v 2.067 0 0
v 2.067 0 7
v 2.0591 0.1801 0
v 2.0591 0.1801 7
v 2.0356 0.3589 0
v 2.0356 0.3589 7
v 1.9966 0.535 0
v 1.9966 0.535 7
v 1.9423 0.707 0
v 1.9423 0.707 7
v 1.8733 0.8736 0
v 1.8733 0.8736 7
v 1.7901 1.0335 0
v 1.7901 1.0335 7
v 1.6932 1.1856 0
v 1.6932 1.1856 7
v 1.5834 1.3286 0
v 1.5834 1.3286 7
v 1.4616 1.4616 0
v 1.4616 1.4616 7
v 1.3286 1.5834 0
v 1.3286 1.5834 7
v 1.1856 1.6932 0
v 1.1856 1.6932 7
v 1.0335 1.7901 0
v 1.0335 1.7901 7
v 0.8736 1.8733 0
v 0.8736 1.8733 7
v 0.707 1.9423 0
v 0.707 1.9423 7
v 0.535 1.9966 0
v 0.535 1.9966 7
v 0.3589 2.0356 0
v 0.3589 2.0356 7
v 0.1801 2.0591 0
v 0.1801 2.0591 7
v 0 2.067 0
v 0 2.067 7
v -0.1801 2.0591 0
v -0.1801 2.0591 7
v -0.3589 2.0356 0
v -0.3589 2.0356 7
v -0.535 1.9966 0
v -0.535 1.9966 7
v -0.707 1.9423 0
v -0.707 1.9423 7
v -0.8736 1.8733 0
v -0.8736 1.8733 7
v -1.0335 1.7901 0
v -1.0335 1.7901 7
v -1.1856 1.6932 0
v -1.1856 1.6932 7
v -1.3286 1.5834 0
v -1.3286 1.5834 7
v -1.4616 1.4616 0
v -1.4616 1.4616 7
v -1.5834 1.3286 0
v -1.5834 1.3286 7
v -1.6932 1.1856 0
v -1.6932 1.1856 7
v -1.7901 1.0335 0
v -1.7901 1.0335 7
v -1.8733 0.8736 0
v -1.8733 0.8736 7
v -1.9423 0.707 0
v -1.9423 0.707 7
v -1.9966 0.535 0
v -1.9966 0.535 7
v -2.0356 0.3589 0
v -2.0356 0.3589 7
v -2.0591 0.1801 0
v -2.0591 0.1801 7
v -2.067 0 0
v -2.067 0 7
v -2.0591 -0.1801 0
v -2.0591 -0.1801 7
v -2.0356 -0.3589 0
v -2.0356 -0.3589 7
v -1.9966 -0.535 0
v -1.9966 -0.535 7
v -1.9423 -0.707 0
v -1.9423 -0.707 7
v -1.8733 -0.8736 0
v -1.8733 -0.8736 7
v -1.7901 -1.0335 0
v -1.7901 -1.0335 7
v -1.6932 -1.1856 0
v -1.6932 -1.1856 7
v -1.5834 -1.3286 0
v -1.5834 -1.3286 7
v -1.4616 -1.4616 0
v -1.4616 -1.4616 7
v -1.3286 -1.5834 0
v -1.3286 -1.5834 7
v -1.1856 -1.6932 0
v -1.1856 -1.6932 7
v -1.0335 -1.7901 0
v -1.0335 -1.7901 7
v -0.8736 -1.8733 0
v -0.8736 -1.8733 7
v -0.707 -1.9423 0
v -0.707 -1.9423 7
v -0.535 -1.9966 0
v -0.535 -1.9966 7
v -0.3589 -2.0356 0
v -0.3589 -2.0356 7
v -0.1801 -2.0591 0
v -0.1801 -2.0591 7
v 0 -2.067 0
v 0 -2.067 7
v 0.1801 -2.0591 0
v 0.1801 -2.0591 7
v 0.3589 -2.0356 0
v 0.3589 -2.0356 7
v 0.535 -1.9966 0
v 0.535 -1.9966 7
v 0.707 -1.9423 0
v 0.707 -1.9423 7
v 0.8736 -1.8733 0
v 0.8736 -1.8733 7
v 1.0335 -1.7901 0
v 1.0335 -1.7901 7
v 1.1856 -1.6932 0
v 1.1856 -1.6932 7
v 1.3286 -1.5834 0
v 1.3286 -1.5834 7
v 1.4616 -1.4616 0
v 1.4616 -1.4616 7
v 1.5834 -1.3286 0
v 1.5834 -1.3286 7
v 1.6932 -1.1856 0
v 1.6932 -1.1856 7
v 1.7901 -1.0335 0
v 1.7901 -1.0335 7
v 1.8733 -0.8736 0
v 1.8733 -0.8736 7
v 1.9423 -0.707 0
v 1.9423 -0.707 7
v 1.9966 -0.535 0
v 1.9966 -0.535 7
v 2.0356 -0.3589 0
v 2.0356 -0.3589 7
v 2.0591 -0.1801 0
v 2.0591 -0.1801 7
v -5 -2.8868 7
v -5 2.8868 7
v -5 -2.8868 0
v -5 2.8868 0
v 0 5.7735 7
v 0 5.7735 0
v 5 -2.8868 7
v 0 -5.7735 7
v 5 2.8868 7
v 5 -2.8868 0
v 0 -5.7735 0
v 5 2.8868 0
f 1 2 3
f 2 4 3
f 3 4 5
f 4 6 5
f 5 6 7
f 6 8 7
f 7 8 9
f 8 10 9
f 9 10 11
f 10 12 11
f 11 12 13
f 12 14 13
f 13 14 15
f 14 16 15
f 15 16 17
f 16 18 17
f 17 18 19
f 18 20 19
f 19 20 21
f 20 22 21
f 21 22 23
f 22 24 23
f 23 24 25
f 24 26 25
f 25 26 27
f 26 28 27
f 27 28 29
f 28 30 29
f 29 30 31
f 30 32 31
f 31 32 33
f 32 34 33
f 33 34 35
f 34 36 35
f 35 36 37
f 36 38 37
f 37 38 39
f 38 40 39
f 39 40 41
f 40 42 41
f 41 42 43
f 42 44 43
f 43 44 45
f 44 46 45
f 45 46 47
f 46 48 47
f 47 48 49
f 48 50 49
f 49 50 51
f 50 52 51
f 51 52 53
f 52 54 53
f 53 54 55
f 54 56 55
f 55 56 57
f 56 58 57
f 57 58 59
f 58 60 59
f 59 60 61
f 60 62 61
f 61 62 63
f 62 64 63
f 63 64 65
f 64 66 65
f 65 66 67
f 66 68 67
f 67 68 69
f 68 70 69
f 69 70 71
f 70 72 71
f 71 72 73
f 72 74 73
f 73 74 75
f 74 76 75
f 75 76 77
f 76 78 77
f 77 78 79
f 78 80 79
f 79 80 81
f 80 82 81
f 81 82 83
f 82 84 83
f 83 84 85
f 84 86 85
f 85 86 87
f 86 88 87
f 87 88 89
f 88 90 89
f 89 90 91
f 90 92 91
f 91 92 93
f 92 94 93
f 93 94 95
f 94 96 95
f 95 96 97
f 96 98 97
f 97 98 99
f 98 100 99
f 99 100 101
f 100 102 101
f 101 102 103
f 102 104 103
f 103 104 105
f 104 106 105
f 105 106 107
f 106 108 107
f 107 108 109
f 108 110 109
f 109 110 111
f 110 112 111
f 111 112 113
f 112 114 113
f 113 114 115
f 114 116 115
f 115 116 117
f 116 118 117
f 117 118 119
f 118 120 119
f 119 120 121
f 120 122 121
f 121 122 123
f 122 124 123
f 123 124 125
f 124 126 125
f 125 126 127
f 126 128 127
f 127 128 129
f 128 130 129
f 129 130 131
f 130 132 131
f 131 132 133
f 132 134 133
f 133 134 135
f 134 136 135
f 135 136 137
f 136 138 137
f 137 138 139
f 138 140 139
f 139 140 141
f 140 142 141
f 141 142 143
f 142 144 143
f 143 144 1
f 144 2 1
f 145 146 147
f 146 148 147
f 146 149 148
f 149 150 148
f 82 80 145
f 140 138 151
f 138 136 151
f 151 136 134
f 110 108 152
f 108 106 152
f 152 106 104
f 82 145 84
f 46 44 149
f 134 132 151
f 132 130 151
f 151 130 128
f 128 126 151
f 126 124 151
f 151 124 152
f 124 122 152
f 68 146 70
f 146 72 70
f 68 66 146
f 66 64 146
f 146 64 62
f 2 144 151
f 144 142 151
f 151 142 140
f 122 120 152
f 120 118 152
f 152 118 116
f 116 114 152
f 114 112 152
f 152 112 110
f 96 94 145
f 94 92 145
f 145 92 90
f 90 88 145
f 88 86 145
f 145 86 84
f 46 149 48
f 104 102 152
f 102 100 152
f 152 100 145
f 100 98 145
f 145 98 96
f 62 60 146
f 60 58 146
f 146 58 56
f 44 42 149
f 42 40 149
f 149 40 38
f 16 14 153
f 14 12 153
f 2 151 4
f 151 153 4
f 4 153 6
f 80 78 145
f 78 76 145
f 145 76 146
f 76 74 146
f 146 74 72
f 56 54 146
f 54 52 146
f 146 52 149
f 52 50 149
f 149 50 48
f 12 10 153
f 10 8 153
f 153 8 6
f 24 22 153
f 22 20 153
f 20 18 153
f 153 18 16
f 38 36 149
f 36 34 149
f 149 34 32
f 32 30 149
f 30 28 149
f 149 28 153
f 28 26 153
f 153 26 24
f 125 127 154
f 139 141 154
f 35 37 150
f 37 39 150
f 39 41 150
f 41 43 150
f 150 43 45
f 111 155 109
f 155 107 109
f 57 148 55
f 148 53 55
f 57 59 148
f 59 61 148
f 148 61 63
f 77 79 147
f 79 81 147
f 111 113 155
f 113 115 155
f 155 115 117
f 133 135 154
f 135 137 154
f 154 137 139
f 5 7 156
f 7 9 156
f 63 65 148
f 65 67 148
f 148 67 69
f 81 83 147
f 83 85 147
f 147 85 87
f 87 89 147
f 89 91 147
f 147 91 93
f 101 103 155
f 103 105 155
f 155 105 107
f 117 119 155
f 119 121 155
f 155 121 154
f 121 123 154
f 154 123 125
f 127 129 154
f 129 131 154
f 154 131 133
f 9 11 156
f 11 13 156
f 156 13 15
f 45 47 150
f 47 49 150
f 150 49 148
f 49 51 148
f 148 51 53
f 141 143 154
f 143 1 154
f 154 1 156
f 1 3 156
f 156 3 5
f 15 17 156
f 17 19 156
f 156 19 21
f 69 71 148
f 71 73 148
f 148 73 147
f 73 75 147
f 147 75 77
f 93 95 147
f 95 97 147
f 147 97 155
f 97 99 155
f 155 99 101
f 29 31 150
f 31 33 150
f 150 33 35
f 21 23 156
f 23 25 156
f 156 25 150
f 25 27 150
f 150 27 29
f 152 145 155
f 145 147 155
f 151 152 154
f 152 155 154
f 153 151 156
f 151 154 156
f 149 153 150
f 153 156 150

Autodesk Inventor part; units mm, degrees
ref_plane "YZ Plane" through (0, 0, 0) normal (1, 0, 0) x (0, 1, 0)
ref_plane "XZ Plane" through (0, 0, 0) normal (0, 1, 0) x (-1, 0, 0)
ref_plane "XY Plane" through (0, 0, 0) normal (0, 0, 1) x (1, 0, 0)
sketch "Sketch1" plane through (0, 0, 0) normal (0, 0, 1) x (1, 0, 0)
  line L0 (5, 2.8868) -> (5, -2.8868)
  line L1 (5, 2.8868) -> (0, 5.7735)
  line L2 (-5, 2.8868) -> (0, 5.7735)
  line L3 (0, -5.7735) -> (5, -2.8868)
  line L4 (-5, 2.8868) -> (-5, -2.8868)
  line L5 (-5, -2.8868) -> (0, -5.7735)
  point P0 (0, 0)
  point P1 (0, 0)
  point P2 (0, 0)
  point P3 (0, 0)
  point P4 (0, 0)
  dimension "d0" = 120
  dimension "d1" = 120
  dimension "d2" = 120
  dimension "d3" = 120
  dimension "d4" = 120
  dimension "d5" = 120
  dimension "d6" = 10
  dimension "d7" = 5
extrude "Extrusion1" add sketch "Sketch1" along normal blind 7
sketch "Sketch2" plane through (0, 0, 7) normal (0, 0, 1) x (1, 0, 0)
  point P0 (0, 0)
  point P1 (0, 0)
hole "Hole1" at (0, 0, 7) direction (0, 0, -1) diameter 4.134 end through all thread size "M5x0.8" class "6H" standard "ISO Metric profile"
properties part number "Nut-5" material "Steel, Mild"
